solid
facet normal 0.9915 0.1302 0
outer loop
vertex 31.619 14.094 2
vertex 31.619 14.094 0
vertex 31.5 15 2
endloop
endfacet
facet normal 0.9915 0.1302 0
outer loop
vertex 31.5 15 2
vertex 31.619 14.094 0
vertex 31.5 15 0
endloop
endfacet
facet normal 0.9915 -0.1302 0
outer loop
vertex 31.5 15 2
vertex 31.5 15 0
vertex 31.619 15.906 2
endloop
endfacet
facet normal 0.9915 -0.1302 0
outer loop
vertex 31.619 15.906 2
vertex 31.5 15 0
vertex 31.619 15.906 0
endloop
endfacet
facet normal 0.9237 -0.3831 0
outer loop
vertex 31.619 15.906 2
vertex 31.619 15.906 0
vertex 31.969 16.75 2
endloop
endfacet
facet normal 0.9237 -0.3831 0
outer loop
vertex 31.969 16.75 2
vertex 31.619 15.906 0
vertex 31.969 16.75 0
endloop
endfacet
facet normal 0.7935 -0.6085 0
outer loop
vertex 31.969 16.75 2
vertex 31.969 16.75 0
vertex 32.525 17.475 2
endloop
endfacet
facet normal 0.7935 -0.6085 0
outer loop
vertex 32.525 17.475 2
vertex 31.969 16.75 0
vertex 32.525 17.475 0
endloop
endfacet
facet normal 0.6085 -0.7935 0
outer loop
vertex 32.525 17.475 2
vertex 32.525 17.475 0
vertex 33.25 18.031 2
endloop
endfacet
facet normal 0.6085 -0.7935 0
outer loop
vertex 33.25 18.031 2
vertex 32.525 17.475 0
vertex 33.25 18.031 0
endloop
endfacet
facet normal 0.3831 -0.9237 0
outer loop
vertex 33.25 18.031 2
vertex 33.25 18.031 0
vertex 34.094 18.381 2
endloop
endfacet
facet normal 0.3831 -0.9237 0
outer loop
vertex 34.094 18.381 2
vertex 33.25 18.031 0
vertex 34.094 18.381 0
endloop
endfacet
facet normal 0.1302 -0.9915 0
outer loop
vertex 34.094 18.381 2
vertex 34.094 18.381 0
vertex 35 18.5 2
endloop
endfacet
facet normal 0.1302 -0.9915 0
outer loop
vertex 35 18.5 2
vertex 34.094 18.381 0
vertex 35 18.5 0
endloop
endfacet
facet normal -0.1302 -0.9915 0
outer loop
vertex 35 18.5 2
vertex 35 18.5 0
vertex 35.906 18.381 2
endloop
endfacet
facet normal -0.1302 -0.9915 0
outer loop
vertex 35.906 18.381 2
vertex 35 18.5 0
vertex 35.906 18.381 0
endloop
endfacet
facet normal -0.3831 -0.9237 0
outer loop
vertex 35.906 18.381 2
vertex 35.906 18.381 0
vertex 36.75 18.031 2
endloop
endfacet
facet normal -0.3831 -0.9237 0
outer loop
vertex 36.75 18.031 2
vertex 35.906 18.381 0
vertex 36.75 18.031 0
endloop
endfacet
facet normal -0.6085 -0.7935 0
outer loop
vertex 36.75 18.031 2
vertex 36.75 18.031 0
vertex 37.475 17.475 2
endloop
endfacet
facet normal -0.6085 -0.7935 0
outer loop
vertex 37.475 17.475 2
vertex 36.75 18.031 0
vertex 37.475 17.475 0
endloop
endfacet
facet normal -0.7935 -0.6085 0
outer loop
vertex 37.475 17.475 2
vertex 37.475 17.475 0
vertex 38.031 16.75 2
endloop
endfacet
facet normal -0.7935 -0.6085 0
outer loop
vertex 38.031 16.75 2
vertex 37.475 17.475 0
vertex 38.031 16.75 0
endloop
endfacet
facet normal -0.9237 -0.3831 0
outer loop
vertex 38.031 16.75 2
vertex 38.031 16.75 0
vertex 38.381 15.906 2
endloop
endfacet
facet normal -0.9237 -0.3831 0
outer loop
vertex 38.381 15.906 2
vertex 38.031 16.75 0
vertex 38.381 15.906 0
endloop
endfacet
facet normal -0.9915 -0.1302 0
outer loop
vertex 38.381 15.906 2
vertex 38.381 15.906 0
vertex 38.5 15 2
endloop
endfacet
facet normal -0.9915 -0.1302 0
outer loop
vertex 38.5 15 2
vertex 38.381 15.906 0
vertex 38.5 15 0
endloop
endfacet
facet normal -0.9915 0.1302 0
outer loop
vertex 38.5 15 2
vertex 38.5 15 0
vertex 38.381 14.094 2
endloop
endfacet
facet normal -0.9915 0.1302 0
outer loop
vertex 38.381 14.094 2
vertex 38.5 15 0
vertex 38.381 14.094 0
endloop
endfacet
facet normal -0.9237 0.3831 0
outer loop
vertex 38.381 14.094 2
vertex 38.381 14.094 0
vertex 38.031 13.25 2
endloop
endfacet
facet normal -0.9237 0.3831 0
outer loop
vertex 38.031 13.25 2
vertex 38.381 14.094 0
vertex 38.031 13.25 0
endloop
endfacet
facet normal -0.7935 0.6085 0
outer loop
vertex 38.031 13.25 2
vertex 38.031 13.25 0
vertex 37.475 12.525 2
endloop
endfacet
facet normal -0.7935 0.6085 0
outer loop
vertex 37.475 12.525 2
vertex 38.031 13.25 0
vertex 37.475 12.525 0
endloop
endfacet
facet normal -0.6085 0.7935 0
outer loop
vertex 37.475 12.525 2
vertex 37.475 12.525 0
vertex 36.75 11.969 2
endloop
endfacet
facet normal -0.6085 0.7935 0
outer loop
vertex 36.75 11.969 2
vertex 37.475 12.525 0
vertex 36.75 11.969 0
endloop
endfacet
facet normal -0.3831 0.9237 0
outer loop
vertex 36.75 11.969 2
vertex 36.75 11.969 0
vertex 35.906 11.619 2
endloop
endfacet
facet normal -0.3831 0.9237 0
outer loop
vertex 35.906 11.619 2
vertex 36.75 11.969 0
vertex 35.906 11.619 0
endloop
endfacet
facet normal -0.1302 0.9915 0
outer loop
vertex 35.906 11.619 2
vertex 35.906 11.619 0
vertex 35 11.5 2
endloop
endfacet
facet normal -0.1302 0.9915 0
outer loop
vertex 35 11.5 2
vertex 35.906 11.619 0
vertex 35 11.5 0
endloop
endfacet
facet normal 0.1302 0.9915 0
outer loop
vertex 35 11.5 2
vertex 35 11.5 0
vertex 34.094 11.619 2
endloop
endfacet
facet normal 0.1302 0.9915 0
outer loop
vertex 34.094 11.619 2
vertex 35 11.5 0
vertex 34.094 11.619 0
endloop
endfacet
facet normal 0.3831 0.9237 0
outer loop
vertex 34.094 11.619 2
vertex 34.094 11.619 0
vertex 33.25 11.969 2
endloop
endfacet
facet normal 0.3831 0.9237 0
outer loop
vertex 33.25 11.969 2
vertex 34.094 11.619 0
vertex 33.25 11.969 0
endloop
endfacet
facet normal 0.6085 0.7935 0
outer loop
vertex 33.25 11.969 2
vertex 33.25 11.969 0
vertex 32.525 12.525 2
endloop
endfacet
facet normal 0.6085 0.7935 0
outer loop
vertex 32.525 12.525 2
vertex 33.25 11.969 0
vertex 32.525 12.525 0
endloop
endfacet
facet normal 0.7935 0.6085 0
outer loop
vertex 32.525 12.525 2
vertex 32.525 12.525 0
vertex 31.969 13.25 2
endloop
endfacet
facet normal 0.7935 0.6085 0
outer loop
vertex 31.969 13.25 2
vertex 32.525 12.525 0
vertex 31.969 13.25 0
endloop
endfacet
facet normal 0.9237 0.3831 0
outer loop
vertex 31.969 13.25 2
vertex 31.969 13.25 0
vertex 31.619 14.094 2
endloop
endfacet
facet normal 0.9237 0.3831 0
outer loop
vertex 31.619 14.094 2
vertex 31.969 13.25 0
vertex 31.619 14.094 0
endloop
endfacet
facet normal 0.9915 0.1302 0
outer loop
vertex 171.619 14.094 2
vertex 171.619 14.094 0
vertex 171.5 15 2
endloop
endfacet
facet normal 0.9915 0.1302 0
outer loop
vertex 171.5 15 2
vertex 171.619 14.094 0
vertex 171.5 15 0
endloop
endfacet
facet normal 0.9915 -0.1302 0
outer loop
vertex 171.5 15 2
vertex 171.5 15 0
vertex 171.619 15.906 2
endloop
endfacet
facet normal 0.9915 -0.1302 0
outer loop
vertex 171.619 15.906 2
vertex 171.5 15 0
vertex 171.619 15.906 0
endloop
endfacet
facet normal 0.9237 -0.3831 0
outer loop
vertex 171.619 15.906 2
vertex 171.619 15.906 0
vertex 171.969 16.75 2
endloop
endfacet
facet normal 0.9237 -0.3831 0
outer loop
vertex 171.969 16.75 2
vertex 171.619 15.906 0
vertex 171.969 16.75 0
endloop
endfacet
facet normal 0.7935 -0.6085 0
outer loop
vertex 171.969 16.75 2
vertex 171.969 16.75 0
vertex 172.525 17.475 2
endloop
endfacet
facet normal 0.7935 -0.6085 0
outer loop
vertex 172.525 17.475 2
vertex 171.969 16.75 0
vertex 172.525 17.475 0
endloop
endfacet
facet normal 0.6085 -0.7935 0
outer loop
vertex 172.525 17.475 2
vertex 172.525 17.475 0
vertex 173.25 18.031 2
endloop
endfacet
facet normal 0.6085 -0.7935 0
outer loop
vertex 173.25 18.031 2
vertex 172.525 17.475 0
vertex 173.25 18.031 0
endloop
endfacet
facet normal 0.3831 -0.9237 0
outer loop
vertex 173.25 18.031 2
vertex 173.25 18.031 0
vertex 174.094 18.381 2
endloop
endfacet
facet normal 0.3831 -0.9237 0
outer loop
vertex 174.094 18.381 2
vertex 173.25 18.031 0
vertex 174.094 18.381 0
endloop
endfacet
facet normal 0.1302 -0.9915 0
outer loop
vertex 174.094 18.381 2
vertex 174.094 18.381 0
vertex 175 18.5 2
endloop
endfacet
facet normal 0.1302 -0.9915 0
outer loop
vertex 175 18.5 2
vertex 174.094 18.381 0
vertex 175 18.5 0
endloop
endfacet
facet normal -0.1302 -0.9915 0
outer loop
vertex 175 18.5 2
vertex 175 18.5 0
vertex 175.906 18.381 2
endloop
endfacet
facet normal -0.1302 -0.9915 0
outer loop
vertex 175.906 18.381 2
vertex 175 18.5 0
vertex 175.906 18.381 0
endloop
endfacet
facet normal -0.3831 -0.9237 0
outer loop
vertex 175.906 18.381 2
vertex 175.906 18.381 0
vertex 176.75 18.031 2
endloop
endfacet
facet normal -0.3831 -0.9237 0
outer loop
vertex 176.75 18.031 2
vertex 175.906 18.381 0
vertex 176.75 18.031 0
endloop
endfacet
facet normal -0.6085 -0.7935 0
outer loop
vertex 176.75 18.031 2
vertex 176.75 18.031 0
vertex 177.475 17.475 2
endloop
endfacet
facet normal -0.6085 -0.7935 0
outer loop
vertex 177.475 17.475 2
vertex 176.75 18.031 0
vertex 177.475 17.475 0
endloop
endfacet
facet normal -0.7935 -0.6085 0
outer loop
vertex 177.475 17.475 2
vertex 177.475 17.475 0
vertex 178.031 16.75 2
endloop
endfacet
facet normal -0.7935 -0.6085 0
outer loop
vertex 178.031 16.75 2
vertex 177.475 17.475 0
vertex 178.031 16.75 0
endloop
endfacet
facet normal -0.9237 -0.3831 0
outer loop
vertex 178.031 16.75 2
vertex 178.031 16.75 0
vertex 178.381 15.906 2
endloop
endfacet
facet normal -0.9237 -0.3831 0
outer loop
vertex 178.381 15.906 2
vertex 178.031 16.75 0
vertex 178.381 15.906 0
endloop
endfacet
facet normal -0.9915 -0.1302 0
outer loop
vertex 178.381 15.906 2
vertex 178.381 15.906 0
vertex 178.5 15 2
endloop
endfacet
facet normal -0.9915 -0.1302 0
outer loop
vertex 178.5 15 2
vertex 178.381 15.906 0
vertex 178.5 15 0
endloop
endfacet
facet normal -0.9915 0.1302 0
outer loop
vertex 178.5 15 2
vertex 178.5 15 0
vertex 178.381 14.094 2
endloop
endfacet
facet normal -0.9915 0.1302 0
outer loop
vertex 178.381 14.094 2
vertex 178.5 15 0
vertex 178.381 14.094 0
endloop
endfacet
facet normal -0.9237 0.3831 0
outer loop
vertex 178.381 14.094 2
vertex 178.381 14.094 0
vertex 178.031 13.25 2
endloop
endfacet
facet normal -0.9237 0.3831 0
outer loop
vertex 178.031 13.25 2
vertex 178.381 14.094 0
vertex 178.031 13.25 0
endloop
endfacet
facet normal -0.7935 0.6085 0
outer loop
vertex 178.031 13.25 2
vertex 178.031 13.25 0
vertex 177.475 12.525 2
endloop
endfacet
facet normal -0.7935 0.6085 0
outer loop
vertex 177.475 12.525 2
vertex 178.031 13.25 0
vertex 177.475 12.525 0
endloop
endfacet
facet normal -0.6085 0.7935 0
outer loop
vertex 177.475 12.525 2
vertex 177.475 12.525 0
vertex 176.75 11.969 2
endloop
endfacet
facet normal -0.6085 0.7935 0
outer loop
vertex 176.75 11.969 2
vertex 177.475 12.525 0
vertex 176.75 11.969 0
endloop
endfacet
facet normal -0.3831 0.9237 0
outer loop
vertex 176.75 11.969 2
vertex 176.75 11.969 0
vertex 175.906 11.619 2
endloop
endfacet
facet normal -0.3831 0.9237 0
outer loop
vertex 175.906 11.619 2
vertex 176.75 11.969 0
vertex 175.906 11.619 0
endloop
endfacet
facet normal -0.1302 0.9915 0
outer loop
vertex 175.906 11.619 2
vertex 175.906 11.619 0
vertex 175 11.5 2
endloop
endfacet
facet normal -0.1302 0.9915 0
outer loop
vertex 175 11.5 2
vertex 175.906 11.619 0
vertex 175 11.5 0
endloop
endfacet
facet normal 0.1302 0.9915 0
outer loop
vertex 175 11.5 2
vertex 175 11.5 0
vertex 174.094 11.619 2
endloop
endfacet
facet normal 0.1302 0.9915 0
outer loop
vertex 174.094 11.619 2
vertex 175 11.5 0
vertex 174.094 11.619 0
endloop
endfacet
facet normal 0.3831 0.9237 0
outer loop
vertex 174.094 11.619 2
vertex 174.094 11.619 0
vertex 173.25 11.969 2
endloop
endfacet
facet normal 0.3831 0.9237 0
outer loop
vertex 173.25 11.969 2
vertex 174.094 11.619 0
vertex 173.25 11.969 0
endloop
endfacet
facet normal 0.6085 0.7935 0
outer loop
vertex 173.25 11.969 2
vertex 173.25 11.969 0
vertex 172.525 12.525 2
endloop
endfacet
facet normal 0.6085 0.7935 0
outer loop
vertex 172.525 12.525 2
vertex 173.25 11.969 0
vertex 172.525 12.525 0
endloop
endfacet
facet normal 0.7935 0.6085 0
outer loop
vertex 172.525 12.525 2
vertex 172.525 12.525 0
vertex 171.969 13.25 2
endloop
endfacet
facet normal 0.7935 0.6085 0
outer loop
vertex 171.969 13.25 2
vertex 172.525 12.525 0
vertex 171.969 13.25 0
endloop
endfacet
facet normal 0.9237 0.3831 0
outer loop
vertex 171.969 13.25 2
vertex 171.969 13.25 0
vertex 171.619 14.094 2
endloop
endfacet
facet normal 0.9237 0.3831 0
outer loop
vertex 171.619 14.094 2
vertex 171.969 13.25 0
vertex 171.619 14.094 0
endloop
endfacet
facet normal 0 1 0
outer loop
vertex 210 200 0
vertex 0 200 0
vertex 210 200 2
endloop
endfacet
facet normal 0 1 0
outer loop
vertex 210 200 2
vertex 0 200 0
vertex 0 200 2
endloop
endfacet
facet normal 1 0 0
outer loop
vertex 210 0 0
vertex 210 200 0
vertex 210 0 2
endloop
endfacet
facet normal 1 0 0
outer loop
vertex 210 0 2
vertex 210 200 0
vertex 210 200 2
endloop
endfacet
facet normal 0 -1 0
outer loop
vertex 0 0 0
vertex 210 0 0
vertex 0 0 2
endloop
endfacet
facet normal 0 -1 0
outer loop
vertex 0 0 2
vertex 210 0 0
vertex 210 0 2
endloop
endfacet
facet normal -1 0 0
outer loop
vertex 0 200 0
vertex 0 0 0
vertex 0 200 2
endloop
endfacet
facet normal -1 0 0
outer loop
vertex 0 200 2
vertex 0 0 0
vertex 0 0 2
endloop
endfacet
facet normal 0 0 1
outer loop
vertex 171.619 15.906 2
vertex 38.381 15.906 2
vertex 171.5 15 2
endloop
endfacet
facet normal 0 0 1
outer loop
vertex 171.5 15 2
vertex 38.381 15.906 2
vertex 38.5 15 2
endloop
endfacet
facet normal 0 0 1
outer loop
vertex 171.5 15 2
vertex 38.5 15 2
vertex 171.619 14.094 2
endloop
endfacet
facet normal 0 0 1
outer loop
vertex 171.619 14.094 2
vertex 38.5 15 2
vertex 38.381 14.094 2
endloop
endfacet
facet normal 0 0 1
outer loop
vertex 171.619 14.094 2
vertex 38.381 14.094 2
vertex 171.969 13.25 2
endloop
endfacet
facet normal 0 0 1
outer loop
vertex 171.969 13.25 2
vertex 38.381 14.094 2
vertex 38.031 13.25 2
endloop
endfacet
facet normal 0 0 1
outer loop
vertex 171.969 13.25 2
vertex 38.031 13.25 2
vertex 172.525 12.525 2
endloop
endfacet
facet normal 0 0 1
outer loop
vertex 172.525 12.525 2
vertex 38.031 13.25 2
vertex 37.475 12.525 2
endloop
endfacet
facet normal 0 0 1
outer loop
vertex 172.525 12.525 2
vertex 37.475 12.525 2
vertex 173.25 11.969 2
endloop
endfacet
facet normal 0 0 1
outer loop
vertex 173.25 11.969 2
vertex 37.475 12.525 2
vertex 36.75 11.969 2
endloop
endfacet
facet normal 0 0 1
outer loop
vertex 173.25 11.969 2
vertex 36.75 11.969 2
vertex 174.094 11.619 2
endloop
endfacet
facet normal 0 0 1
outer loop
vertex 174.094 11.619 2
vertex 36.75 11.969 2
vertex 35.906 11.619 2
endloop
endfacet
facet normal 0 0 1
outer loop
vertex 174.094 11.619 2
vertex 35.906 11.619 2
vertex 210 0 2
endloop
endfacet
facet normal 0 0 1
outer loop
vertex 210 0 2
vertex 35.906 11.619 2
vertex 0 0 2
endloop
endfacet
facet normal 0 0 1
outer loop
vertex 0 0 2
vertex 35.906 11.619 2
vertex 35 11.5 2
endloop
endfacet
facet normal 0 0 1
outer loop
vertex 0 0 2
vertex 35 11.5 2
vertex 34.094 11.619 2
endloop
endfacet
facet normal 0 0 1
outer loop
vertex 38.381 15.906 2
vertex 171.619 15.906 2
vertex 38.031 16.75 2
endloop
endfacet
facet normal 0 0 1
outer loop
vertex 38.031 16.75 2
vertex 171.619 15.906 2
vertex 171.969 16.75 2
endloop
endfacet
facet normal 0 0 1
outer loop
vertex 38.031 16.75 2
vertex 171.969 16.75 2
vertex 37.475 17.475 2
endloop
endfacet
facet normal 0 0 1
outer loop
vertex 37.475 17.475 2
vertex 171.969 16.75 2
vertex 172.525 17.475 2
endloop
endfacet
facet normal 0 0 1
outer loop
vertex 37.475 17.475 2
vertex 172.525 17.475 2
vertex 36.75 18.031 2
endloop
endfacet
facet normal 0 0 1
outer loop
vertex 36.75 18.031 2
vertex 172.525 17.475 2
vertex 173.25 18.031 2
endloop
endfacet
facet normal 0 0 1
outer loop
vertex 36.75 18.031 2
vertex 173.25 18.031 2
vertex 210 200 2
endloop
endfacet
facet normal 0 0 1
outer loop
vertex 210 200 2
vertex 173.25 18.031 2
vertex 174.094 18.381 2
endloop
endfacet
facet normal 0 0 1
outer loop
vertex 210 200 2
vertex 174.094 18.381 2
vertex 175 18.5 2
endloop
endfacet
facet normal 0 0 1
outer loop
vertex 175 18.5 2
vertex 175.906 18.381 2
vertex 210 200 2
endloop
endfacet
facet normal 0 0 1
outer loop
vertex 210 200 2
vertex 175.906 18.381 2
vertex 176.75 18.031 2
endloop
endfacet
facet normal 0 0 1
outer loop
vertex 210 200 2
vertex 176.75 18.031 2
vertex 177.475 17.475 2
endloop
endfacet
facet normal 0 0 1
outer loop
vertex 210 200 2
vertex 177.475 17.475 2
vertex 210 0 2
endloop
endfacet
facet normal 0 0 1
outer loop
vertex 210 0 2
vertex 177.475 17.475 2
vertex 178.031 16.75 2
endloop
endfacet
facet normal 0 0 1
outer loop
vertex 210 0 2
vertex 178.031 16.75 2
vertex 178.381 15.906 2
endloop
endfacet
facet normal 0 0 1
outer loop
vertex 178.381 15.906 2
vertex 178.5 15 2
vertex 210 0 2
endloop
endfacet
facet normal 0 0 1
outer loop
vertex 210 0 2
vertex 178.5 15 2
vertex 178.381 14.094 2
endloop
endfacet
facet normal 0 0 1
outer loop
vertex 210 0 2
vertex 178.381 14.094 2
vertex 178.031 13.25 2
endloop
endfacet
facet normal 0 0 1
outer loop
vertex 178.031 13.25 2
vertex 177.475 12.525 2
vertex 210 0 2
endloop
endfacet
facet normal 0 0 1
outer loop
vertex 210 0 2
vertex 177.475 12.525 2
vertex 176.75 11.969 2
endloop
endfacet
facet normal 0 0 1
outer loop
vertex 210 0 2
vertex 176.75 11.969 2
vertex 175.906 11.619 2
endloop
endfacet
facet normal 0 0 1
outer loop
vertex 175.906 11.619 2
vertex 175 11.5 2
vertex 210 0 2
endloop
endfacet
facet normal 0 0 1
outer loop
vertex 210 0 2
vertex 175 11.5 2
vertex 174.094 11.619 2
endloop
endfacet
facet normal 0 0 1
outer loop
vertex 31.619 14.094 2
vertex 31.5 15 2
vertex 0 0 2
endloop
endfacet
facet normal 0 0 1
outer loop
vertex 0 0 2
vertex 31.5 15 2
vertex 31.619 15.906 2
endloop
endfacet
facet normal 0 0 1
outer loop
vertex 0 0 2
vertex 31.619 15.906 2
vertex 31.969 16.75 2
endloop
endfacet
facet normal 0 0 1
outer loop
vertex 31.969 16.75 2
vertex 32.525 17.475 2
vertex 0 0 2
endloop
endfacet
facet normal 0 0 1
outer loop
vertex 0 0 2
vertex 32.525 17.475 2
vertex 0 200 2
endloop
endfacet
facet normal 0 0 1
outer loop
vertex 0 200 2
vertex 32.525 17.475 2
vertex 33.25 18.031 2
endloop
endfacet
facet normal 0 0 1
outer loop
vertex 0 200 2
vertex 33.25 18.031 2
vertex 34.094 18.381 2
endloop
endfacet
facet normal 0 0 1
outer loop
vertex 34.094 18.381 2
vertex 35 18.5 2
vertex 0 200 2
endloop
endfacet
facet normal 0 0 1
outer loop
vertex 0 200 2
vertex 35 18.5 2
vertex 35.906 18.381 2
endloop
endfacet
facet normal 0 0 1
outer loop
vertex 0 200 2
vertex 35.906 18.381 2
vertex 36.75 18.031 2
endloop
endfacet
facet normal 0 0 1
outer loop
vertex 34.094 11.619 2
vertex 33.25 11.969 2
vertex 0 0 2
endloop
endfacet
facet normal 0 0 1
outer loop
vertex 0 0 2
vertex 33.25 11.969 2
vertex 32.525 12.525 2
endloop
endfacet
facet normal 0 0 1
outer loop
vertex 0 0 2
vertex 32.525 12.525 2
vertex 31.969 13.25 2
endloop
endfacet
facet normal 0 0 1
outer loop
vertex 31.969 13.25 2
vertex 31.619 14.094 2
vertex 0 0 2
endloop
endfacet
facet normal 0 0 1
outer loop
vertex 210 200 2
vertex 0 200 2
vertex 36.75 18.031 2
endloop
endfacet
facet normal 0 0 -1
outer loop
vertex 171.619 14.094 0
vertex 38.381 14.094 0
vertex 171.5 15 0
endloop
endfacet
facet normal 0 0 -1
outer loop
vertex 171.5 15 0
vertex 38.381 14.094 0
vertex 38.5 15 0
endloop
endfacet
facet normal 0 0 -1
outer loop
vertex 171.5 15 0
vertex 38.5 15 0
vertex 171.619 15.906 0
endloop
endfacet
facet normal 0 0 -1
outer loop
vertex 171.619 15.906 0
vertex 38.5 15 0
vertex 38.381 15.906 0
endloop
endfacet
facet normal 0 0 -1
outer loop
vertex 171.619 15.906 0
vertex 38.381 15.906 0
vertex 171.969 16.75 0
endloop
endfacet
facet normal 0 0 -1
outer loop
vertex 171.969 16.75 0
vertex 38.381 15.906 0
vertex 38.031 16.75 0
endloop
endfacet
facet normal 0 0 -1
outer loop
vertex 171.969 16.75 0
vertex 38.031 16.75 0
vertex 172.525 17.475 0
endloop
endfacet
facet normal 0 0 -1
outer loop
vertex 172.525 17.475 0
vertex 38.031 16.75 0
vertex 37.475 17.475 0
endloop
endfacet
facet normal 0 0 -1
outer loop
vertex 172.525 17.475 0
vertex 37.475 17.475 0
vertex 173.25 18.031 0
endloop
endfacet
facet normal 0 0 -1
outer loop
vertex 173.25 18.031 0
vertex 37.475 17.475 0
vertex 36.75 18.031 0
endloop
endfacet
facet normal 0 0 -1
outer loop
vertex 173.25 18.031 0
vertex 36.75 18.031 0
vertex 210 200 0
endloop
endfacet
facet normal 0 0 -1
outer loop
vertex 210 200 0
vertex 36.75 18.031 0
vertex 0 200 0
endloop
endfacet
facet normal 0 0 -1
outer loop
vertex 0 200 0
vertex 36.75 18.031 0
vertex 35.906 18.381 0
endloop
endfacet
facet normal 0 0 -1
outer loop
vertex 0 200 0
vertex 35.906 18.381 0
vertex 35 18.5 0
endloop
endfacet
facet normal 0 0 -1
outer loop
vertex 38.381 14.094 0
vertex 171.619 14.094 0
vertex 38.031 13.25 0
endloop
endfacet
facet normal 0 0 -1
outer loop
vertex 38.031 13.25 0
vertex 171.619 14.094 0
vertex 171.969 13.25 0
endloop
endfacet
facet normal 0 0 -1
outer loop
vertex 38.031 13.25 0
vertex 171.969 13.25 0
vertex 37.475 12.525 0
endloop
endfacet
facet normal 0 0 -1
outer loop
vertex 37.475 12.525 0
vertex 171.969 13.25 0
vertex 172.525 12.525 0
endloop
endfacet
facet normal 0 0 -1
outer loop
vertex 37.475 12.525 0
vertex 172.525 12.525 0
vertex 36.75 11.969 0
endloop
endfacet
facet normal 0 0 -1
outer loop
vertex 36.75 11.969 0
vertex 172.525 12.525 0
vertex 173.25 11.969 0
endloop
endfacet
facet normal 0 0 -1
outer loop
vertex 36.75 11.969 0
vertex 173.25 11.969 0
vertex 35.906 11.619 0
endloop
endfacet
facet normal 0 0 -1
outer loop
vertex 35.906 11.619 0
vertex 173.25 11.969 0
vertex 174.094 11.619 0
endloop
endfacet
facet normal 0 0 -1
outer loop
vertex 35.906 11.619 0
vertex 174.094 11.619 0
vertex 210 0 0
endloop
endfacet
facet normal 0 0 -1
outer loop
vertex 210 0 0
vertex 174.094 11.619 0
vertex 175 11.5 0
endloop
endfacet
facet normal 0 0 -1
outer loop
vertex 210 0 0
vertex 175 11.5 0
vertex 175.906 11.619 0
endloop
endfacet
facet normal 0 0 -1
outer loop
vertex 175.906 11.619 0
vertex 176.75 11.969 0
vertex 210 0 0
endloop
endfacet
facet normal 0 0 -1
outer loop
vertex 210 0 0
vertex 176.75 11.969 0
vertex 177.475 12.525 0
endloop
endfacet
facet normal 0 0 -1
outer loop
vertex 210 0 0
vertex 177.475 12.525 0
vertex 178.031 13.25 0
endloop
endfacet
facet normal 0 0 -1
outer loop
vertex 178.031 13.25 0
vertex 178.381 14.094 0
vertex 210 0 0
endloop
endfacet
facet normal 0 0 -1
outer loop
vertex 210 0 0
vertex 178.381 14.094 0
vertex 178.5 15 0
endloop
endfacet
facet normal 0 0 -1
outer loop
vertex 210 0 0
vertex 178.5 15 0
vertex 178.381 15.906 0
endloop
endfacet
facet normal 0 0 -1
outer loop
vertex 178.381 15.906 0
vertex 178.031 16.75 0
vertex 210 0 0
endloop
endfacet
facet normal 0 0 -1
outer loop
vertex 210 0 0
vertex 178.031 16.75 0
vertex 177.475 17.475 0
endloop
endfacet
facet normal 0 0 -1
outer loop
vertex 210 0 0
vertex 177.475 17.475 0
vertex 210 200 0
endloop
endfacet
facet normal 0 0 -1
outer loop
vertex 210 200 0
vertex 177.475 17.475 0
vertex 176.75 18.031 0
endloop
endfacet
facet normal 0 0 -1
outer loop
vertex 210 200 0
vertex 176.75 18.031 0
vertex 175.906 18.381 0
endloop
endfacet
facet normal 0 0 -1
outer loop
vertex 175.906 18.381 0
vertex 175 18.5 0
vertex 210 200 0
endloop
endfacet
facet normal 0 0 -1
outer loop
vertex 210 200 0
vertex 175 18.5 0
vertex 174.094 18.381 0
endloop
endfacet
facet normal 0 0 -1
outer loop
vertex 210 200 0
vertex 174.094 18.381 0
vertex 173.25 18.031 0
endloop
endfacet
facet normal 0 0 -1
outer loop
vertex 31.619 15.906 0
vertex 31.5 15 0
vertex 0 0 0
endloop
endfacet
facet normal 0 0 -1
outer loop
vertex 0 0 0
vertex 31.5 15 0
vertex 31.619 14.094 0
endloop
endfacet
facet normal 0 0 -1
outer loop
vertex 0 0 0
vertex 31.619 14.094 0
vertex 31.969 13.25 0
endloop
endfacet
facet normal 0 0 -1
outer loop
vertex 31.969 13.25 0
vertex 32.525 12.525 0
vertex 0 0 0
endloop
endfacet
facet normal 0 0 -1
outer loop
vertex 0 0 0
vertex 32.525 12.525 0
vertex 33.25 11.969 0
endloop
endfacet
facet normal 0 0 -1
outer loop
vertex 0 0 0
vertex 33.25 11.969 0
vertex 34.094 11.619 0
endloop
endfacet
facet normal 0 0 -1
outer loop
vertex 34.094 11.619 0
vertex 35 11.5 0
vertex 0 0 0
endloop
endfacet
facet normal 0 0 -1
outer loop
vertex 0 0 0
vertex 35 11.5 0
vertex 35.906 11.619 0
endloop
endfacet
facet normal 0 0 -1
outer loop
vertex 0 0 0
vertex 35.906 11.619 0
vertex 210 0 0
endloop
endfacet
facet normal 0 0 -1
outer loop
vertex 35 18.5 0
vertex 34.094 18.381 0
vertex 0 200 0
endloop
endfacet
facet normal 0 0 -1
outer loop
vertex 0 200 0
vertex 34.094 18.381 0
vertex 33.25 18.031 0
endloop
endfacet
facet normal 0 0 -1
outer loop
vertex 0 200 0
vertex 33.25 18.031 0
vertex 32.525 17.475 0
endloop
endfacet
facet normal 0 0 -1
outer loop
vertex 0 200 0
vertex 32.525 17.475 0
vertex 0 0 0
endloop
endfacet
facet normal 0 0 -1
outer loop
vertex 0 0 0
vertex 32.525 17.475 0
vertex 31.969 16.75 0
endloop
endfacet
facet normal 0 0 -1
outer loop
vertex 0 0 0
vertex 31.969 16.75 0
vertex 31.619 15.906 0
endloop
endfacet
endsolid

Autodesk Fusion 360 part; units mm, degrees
sketch "Skizze1" plane through (0, 0, 0) normal (0, 0, 1) x (1, 0, 0)
  line L0 (0, 0) -> (210, 0)
  line L1 (210, 0) -> (210, 200)
  line L2 (210, 200) -> (0, 200)
  line L3 (0, 200) -> (0, 0)
  line L4 (0, 0) -> (210, 0)
  line L5 (210, 0) -> (210, 30)
  line L6 (210, 30) -> (0, 30)
  line L7 (0, 30) -> (0, 0)
  line L8 (0, 15) -> (210, 15) construction
  line L9 (0, 15) -> (35, 15)
  circle A0 centre (35, 15) radius 3.5
  line L10 (210, 15) -> (175, 15)
  circle A1 centre (175, 15) radius 3.5
  dimension "d1" = 210
  dimension "d2" = 200
  dimension "d3" = 7
  dimension "d4" = 7
extrude "Extrusion1" add sketch "Skizze1" along normal blind 2
